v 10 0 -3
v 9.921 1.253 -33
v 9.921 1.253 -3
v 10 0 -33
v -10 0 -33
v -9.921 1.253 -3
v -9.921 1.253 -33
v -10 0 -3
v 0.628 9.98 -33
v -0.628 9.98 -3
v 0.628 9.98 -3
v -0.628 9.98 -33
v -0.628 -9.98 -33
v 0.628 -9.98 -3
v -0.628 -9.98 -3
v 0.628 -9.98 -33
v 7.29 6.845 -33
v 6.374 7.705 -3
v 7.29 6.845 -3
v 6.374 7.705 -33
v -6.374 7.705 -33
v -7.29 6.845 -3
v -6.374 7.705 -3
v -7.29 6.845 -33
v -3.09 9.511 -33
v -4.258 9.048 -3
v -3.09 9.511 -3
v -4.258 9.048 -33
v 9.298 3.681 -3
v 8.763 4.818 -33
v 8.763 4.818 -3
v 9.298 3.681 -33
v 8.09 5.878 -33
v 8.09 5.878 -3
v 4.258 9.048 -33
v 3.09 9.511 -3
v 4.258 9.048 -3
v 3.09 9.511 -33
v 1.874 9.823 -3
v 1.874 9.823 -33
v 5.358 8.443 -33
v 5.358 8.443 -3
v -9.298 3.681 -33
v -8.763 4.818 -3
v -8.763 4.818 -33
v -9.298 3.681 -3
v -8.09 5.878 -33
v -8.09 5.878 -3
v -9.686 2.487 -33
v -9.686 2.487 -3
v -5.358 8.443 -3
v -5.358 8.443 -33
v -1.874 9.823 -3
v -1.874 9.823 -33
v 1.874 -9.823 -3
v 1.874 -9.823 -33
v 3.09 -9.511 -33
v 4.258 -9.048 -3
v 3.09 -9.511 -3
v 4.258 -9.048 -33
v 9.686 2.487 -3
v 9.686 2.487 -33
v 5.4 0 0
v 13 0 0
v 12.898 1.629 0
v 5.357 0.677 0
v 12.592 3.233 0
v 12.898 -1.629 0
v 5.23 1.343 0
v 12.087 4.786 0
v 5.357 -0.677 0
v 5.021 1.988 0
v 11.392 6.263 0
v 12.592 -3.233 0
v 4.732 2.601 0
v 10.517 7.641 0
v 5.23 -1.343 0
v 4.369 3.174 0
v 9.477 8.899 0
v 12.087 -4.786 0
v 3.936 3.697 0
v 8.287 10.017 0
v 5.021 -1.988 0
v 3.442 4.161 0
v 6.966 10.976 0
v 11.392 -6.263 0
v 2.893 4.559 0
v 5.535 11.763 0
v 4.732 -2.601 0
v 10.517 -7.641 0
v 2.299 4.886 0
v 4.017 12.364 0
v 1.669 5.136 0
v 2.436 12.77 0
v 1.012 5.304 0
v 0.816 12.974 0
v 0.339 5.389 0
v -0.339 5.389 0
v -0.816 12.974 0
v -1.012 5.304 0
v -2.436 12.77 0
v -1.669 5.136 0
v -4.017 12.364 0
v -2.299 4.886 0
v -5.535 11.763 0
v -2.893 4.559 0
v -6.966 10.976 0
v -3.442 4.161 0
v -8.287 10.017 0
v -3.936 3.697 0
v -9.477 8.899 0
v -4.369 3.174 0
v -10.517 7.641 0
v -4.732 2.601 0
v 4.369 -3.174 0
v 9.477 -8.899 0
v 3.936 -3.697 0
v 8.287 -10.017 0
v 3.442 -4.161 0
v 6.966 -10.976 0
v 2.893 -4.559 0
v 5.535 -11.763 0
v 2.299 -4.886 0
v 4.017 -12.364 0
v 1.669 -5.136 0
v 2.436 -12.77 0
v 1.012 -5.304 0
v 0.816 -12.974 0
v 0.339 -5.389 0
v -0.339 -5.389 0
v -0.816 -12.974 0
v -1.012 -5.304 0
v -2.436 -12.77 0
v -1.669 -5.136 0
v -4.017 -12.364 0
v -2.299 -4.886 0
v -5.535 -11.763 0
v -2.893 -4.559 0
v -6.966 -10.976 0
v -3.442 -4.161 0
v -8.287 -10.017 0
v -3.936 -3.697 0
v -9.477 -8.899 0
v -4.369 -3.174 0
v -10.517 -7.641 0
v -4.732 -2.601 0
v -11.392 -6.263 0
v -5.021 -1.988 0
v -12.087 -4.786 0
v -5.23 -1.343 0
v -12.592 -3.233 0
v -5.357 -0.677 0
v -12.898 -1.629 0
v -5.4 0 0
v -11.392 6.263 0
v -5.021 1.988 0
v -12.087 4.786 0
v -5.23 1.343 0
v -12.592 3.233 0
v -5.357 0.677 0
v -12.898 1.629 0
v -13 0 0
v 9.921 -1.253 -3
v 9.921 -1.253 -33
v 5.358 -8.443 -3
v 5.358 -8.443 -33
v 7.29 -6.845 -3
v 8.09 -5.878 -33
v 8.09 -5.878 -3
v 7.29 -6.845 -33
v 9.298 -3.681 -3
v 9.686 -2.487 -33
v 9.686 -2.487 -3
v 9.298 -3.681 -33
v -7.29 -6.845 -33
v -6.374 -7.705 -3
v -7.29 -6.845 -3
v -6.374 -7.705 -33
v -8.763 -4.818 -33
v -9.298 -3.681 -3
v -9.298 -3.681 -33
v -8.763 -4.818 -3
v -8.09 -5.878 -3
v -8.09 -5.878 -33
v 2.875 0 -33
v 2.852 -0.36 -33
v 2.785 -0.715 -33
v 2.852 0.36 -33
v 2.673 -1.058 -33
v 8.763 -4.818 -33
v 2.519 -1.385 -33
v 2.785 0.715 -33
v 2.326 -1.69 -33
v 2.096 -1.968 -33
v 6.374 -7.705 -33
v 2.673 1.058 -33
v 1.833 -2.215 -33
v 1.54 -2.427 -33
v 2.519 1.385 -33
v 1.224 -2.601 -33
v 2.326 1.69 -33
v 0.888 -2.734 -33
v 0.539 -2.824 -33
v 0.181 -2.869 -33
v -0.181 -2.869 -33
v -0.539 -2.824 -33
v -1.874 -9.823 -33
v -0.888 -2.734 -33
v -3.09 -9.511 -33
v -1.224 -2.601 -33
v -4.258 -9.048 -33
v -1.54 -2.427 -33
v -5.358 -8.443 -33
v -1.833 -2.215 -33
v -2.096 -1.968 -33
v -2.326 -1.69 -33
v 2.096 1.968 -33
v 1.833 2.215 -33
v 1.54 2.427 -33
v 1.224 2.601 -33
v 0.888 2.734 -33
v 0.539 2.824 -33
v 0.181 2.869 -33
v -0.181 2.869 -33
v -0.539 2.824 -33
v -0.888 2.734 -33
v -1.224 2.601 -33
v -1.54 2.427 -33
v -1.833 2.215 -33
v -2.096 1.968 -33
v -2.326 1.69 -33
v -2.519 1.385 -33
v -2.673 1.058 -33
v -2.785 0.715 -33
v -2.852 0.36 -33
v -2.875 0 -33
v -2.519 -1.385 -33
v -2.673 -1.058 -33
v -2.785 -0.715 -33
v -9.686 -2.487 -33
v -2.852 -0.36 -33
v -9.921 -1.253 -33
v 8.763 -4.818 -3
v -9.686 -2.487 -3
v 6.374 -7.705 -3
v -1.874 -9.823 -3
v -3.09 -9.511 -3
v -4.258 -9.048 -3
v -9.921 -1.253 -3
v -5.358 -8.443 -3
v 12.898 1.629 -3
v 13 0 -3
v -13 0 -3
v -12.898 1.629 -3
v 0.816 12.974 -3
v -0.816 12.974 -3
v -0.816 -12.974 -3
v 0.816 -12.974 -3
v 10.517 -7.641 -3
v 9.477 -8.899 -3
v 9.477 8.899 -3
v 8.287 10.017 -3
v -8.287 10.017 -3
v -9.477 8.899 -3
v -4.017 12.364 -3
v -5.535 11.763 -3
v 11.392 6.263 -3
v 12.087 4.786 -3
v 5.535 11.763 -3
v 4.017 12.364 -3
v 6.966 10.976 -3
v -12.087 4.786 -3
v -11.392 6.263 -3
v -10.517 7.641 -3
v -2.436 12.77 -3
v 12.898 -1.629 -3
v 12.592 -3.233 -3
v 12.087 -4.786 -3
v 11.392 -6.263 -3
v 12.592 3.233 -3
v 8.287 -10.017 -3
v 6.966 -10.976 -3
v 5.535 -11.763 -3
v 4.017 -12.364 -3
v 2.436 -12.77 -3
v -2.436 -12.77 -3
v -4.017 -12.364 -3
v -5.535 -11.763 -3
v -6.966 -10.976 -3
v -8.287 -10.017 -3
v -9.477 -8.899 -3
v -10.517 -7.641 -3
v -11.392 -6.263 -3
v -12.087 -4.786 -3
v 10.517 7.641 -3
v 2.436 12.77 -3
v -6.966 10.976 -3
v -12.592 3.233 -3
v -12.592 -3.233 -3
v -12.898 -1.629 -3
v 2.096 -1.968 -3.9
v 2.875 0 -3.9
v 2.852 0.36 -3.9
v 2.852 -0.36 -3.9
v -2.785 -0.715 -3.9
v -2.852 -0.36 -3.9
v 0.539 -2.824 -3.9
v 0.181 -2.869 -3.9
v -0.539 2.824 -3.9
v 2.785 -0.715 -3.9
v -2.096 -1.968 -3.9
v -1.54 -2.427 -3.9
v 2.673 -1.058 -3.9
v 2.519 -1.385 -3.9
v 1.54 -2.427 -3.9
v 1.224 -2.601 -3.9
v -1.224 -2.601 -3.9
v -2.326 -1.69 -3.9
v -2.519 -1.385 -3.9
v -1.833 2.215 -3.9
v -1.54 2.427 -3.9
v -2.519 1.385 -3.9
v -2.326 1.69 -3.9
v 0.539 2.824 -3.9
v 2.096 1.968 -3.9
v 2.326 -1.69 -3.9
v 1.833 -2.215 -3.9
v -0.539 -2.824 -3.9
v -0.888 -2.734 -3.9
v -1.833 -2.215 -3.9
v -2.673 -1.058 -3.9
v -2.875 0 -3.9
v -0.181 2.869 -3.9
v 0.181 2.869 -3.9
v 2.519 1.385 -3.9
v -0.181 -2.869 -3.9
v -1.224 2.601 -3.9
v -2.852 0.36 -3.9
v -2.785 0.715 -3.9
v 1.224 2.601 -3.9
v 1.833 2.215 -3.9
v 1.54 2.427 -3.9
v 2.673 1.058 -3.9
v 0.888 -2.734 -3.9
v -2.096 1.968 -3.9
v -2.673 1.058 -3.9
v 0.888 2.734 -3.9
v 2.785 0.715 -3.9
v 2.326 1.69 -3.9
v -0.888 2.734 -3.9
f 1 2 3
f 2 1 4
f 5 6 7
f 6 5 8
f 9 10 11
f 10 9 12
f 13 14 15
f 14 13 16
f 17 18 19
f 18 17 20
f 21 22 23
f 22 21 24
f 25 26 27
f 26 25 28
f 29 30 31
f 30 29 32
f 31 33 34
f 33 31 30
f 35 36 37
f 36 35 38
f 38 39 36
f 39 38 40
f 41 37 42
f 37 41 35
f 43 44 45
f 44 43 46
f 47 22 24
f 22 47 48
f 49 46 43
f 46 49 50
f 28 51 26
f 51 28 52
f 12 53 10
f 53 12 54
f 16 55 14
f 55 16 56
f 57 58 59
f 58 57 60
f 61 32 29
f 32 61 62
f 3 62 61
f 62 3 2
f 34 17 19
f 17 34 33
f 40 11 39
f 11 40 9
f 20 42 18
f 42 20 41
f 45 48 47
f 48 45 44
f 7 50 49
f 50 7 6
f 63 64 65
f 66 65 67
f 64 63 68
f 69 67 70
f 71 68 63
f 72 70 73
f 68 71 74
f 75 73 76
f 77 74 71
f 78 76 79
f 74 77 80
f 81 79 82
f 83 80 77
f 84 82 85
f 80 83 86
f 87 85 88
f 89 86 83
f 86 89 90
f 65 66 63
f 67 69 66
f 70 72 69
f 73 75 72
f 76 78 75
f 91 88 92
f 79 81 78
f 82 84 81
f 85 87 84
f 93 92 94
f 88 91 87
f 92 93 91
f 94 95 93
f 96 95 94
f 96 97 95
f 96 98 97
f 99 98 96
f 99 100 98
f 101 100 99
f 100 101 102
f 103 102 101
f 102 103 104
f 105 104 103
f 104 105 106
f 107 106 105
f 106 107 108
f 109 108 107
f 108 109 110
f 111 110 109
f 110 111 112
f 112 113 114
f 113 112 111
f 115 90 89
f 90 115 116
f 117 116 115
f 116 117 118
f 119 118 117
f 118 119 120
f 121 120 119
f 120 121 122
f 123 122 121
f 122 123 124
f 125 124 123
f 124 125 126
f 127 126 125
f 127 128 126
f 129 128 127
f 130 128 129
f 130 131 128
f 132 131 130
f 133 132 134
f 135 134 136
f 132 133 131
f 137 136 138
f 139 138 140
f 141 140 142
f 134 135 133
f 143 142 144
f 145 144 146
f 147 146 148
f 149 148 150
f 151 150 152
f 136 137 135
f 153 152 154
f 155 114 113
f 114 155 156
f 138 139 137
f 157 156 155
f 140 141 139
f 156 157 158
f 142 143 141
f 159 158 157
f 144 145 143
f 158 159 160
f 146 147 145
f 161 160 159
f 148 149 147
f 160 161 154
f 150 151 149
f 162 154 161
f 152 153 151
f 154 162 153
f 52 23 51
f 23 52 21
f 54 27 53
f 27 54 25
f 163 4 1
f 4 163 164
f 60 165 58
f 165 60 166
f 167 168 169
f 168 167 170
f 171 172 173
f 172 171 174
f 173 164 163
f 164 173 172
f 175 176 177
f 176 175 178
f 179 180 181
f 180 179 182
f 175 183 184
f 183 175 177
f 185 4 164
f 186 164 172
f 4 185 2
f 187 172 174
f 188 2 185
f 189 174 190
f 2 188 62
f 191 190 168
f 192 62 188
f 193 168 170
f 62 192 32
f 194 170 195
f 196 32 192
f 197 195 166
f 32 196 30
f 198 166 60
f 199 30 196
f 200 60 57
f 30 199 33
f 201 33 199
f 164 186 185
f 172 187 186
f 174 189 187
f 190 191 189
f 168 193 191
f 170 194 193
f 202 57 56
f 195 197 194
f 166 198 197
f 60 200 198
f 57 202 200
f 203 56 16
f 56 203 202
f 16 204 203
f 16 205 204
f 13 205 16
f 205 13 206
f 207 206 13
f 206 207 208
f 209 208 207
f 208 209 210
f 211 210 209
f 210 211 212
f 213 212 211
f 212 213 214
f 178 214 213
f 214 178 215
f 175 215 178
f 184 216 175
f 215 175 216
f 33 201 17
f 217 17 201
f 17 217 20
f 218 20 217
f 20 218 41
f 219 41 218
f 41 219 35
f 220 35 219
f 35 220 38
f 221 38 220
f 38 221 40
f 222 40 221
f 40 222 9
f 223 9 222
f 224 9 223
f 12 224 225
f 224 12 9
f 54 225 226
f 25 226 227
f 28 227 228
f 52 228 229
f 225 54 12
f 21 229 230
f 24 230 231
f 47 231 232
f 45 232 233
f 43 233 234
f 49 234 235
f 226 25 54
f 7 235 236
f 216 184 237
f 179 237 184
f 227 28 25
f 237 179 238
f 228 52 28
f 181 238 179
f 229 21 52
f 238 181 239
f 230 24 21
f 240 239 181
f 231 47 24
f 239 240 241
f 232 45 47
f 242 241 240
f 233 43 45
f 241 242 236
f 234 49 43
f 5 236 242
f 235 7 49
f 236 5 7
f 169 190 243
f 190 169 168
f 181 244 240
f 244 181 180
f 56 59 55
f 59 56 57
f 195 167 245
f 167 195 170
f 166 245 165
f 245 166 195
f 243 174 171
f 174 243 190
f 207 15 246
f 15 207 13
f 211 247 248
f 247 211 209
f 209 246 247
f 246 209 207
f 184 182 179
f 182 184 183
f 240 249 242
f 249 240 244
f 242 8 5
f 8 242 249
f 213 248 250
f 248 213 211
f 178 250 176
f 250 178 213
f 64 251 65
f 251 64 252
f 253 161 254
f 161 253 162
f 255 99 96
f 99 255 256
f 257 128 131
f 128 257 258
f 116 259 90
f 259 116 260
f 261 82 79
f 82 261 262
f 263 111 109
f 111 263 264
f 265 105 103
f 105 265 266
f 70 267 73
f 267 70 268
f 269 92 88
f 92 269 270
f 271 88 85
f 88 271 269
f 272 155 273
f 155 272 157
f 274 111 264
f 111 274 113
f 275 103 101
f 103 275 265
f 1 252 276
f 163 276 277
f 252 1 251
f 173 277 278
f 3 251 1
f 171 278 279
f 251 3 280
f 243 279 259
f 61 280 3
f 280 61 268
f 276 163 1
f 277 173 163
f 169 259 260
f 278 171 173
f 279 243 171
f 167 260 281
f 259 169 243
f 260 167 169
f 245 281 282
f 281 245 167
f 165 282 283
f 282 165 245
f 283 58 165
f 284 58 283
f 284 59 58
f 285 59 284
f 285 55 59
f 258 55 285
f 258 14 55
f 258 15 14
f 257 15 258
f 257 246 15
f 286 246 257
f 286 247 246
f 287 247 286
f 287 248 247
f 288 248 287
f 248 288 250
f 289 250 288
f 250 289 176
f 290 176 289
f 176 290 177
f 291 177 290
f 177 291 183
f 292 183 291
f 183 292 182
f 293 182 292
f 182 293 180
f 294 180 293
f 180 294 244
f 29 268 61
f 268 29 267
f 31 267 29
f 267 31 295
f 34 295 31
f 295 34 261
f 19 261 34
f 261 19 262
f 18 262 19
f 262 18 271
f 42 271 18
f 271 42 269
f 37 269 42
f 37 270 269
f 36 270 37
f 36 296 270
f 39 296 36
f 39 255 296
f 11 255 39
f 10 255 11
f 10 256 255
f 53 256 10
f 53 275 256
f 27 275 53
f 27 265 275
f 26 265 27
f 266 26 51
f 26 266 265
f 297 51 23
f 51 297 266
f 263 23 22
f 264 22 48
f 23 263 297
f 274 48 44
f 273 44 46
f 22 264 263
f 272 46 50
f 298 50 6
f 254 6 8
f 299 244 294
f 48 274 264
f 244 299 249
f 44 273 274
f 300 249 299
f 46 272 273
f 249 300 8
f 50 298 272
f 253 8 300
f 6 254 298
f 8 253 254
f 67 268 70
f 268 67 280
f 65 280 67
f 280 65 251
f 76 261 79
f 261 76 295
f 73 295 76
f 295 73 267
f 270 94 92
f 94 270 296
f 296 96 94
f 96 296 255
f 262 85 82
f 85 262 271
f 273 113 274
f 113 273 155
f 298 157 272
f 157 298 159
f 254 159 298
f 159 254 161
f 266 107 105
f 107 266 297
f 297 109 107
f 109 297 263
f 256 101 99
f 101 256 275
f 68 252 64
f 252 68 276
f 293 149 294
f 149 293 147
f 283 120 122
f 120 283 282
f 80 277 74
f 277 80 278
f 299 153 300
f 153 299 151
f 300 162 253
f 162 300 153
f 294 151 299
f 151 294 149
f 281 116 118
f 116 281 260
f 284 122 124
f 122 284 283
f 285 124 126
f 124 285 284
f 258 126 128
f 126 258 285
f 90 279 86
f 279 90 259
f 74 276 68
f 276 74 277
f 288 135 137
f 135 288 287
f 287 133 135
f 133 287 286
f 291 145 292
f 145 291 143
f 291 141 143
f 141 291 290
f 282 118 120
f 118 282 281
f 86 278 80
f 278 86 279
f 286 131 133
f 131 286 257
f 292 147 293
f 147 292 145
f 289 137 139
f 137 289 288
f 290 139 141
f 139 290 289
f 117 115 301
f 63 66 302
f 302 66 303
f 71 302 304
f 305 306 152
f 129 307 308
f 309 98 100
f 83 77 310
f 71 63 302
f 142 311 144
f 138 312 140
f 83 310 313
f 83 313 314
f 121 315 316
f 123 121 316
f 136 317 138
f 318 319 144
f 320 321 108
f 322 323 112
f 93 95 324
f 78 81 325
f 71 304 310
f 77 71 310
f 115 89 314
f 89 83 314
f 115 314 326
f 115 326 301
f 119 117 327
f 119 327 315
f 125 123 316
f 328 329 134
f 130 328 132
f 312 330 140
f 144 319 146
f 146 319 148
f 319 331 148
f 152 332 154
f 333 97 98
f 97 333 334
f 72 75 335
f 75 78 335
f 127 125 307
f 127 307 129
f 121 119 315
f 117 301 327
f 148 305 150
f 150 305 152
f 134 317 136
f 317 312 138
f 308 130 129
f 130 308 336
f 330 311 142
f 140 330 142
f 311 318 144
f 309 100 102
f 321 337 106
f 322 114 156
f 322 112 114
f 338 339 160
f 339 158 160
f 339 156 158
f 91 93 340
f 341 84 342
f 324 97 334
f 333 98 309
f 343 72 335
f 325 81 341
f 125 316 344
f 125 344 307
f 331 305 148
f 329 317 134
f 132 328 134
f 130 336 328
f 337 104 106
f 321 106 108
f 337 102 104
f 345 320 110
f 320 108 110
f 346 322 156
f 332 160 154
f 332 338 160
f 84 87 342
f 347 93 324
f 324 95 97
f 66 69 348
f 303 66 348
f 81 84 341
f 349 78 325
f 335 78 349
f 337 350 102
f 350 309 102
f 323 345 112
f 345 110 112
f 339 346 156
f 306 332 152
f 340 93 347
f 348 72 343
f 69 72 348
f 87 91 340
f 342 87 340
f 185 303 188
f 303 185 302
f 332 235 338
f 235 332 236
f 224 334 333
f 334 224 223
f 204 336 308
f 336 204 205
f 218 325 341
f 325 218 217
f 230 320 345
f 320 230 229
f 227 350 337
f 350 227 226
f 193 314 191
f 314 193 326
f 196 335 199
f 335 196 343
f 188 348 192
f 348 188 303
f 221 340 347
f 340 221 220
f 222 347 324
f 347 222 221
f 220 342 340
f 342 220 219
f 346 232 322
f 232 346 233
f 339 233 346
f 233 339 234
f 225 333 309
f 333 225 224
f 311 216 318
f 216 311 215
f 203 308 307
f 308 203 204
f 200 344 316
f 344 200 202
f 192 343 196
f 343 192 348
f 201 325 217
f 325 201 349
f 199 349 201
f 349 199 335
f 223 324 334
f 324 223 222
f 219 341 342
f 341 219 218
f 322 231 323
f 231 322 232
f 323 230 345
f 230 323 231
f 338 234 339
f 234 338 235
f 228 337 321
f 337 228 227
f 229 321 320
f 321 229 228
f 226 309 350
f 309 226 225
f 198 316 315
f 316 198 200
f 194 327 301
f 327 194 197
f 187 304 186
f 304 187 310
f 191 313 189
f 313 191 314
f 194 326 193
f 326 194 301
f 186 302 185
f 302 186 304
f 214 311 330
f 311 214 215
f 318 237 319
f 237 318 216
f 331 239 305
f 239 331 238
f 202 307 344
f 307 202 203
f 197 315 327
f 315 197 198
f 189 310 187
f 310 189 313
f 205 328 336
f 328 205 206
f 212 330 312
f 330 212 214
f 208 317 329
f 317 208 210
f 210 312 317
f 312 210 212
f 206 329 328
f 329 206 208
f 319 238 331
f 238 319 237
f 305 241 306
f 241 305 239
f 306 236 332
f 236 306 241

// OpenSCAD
$fn = 50;


difference() {
	union() {
		translate(v = [0, 0, -33.0000000000]) {
			cylinder(h = 33, r = 10.0000000000);
		}
		translate(v = [0, 0, -3.0000000000]) {
			cylinder(h = 3, r = 13.0000000000);
		}
	}
	union() {
		translate(v = [0, 0, 0]) {
			rotate(a = [0, 0, 0]) {
				difference() {
					union() {
						#translate(v = [0, 0, -33.0000000000]) {
							cylinder(h = 33, r = 2.6000000000);
						}
						#translate(v = [0, 0, -3.9000000000]) {
							cylinder(h = 3.9000000000, r = 10.0000000000, r1 = 2.8750000000, r2 = 5.4000000000);
						}
						#translate(v = [0, 0, -33.0000000000]) {
							cylinder(h = 33, r = 2.8750000000);
						}
						#translate(v = [0, 0, -33.0000000000]) {
							cylinder(h = 33, r = 2.6000000000);
						}
					}
					union();
				}
			}
		}
	}
}
